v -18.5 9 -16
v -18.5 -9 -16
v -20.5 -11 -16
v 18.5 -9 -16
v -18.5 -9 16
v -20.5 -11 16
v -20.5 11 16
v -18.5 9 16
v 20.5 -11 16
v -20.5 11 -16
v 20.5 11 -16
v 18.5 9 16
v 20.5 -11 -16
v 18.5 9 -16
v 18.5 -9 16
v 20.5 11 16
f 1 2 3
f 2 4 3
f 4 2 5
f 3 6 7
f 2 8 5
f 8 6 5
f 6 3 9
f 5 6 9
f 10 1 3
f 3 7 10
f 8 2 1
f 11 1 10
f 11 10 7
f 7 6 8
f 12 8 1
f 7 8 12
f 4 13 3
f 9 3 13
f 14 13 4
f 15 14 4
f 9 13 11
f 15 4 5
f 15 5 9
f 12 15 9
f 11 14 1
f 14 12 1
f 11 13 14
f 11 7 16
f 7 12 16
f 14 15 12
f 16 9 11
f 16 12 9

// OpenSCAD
w=37;
d=18;
h=32;
t=2;
g=10;
difference() {
cube([w+2*t,d+2*t,h],center=true);
cube([w,d,h+0.02],center=true);
}
